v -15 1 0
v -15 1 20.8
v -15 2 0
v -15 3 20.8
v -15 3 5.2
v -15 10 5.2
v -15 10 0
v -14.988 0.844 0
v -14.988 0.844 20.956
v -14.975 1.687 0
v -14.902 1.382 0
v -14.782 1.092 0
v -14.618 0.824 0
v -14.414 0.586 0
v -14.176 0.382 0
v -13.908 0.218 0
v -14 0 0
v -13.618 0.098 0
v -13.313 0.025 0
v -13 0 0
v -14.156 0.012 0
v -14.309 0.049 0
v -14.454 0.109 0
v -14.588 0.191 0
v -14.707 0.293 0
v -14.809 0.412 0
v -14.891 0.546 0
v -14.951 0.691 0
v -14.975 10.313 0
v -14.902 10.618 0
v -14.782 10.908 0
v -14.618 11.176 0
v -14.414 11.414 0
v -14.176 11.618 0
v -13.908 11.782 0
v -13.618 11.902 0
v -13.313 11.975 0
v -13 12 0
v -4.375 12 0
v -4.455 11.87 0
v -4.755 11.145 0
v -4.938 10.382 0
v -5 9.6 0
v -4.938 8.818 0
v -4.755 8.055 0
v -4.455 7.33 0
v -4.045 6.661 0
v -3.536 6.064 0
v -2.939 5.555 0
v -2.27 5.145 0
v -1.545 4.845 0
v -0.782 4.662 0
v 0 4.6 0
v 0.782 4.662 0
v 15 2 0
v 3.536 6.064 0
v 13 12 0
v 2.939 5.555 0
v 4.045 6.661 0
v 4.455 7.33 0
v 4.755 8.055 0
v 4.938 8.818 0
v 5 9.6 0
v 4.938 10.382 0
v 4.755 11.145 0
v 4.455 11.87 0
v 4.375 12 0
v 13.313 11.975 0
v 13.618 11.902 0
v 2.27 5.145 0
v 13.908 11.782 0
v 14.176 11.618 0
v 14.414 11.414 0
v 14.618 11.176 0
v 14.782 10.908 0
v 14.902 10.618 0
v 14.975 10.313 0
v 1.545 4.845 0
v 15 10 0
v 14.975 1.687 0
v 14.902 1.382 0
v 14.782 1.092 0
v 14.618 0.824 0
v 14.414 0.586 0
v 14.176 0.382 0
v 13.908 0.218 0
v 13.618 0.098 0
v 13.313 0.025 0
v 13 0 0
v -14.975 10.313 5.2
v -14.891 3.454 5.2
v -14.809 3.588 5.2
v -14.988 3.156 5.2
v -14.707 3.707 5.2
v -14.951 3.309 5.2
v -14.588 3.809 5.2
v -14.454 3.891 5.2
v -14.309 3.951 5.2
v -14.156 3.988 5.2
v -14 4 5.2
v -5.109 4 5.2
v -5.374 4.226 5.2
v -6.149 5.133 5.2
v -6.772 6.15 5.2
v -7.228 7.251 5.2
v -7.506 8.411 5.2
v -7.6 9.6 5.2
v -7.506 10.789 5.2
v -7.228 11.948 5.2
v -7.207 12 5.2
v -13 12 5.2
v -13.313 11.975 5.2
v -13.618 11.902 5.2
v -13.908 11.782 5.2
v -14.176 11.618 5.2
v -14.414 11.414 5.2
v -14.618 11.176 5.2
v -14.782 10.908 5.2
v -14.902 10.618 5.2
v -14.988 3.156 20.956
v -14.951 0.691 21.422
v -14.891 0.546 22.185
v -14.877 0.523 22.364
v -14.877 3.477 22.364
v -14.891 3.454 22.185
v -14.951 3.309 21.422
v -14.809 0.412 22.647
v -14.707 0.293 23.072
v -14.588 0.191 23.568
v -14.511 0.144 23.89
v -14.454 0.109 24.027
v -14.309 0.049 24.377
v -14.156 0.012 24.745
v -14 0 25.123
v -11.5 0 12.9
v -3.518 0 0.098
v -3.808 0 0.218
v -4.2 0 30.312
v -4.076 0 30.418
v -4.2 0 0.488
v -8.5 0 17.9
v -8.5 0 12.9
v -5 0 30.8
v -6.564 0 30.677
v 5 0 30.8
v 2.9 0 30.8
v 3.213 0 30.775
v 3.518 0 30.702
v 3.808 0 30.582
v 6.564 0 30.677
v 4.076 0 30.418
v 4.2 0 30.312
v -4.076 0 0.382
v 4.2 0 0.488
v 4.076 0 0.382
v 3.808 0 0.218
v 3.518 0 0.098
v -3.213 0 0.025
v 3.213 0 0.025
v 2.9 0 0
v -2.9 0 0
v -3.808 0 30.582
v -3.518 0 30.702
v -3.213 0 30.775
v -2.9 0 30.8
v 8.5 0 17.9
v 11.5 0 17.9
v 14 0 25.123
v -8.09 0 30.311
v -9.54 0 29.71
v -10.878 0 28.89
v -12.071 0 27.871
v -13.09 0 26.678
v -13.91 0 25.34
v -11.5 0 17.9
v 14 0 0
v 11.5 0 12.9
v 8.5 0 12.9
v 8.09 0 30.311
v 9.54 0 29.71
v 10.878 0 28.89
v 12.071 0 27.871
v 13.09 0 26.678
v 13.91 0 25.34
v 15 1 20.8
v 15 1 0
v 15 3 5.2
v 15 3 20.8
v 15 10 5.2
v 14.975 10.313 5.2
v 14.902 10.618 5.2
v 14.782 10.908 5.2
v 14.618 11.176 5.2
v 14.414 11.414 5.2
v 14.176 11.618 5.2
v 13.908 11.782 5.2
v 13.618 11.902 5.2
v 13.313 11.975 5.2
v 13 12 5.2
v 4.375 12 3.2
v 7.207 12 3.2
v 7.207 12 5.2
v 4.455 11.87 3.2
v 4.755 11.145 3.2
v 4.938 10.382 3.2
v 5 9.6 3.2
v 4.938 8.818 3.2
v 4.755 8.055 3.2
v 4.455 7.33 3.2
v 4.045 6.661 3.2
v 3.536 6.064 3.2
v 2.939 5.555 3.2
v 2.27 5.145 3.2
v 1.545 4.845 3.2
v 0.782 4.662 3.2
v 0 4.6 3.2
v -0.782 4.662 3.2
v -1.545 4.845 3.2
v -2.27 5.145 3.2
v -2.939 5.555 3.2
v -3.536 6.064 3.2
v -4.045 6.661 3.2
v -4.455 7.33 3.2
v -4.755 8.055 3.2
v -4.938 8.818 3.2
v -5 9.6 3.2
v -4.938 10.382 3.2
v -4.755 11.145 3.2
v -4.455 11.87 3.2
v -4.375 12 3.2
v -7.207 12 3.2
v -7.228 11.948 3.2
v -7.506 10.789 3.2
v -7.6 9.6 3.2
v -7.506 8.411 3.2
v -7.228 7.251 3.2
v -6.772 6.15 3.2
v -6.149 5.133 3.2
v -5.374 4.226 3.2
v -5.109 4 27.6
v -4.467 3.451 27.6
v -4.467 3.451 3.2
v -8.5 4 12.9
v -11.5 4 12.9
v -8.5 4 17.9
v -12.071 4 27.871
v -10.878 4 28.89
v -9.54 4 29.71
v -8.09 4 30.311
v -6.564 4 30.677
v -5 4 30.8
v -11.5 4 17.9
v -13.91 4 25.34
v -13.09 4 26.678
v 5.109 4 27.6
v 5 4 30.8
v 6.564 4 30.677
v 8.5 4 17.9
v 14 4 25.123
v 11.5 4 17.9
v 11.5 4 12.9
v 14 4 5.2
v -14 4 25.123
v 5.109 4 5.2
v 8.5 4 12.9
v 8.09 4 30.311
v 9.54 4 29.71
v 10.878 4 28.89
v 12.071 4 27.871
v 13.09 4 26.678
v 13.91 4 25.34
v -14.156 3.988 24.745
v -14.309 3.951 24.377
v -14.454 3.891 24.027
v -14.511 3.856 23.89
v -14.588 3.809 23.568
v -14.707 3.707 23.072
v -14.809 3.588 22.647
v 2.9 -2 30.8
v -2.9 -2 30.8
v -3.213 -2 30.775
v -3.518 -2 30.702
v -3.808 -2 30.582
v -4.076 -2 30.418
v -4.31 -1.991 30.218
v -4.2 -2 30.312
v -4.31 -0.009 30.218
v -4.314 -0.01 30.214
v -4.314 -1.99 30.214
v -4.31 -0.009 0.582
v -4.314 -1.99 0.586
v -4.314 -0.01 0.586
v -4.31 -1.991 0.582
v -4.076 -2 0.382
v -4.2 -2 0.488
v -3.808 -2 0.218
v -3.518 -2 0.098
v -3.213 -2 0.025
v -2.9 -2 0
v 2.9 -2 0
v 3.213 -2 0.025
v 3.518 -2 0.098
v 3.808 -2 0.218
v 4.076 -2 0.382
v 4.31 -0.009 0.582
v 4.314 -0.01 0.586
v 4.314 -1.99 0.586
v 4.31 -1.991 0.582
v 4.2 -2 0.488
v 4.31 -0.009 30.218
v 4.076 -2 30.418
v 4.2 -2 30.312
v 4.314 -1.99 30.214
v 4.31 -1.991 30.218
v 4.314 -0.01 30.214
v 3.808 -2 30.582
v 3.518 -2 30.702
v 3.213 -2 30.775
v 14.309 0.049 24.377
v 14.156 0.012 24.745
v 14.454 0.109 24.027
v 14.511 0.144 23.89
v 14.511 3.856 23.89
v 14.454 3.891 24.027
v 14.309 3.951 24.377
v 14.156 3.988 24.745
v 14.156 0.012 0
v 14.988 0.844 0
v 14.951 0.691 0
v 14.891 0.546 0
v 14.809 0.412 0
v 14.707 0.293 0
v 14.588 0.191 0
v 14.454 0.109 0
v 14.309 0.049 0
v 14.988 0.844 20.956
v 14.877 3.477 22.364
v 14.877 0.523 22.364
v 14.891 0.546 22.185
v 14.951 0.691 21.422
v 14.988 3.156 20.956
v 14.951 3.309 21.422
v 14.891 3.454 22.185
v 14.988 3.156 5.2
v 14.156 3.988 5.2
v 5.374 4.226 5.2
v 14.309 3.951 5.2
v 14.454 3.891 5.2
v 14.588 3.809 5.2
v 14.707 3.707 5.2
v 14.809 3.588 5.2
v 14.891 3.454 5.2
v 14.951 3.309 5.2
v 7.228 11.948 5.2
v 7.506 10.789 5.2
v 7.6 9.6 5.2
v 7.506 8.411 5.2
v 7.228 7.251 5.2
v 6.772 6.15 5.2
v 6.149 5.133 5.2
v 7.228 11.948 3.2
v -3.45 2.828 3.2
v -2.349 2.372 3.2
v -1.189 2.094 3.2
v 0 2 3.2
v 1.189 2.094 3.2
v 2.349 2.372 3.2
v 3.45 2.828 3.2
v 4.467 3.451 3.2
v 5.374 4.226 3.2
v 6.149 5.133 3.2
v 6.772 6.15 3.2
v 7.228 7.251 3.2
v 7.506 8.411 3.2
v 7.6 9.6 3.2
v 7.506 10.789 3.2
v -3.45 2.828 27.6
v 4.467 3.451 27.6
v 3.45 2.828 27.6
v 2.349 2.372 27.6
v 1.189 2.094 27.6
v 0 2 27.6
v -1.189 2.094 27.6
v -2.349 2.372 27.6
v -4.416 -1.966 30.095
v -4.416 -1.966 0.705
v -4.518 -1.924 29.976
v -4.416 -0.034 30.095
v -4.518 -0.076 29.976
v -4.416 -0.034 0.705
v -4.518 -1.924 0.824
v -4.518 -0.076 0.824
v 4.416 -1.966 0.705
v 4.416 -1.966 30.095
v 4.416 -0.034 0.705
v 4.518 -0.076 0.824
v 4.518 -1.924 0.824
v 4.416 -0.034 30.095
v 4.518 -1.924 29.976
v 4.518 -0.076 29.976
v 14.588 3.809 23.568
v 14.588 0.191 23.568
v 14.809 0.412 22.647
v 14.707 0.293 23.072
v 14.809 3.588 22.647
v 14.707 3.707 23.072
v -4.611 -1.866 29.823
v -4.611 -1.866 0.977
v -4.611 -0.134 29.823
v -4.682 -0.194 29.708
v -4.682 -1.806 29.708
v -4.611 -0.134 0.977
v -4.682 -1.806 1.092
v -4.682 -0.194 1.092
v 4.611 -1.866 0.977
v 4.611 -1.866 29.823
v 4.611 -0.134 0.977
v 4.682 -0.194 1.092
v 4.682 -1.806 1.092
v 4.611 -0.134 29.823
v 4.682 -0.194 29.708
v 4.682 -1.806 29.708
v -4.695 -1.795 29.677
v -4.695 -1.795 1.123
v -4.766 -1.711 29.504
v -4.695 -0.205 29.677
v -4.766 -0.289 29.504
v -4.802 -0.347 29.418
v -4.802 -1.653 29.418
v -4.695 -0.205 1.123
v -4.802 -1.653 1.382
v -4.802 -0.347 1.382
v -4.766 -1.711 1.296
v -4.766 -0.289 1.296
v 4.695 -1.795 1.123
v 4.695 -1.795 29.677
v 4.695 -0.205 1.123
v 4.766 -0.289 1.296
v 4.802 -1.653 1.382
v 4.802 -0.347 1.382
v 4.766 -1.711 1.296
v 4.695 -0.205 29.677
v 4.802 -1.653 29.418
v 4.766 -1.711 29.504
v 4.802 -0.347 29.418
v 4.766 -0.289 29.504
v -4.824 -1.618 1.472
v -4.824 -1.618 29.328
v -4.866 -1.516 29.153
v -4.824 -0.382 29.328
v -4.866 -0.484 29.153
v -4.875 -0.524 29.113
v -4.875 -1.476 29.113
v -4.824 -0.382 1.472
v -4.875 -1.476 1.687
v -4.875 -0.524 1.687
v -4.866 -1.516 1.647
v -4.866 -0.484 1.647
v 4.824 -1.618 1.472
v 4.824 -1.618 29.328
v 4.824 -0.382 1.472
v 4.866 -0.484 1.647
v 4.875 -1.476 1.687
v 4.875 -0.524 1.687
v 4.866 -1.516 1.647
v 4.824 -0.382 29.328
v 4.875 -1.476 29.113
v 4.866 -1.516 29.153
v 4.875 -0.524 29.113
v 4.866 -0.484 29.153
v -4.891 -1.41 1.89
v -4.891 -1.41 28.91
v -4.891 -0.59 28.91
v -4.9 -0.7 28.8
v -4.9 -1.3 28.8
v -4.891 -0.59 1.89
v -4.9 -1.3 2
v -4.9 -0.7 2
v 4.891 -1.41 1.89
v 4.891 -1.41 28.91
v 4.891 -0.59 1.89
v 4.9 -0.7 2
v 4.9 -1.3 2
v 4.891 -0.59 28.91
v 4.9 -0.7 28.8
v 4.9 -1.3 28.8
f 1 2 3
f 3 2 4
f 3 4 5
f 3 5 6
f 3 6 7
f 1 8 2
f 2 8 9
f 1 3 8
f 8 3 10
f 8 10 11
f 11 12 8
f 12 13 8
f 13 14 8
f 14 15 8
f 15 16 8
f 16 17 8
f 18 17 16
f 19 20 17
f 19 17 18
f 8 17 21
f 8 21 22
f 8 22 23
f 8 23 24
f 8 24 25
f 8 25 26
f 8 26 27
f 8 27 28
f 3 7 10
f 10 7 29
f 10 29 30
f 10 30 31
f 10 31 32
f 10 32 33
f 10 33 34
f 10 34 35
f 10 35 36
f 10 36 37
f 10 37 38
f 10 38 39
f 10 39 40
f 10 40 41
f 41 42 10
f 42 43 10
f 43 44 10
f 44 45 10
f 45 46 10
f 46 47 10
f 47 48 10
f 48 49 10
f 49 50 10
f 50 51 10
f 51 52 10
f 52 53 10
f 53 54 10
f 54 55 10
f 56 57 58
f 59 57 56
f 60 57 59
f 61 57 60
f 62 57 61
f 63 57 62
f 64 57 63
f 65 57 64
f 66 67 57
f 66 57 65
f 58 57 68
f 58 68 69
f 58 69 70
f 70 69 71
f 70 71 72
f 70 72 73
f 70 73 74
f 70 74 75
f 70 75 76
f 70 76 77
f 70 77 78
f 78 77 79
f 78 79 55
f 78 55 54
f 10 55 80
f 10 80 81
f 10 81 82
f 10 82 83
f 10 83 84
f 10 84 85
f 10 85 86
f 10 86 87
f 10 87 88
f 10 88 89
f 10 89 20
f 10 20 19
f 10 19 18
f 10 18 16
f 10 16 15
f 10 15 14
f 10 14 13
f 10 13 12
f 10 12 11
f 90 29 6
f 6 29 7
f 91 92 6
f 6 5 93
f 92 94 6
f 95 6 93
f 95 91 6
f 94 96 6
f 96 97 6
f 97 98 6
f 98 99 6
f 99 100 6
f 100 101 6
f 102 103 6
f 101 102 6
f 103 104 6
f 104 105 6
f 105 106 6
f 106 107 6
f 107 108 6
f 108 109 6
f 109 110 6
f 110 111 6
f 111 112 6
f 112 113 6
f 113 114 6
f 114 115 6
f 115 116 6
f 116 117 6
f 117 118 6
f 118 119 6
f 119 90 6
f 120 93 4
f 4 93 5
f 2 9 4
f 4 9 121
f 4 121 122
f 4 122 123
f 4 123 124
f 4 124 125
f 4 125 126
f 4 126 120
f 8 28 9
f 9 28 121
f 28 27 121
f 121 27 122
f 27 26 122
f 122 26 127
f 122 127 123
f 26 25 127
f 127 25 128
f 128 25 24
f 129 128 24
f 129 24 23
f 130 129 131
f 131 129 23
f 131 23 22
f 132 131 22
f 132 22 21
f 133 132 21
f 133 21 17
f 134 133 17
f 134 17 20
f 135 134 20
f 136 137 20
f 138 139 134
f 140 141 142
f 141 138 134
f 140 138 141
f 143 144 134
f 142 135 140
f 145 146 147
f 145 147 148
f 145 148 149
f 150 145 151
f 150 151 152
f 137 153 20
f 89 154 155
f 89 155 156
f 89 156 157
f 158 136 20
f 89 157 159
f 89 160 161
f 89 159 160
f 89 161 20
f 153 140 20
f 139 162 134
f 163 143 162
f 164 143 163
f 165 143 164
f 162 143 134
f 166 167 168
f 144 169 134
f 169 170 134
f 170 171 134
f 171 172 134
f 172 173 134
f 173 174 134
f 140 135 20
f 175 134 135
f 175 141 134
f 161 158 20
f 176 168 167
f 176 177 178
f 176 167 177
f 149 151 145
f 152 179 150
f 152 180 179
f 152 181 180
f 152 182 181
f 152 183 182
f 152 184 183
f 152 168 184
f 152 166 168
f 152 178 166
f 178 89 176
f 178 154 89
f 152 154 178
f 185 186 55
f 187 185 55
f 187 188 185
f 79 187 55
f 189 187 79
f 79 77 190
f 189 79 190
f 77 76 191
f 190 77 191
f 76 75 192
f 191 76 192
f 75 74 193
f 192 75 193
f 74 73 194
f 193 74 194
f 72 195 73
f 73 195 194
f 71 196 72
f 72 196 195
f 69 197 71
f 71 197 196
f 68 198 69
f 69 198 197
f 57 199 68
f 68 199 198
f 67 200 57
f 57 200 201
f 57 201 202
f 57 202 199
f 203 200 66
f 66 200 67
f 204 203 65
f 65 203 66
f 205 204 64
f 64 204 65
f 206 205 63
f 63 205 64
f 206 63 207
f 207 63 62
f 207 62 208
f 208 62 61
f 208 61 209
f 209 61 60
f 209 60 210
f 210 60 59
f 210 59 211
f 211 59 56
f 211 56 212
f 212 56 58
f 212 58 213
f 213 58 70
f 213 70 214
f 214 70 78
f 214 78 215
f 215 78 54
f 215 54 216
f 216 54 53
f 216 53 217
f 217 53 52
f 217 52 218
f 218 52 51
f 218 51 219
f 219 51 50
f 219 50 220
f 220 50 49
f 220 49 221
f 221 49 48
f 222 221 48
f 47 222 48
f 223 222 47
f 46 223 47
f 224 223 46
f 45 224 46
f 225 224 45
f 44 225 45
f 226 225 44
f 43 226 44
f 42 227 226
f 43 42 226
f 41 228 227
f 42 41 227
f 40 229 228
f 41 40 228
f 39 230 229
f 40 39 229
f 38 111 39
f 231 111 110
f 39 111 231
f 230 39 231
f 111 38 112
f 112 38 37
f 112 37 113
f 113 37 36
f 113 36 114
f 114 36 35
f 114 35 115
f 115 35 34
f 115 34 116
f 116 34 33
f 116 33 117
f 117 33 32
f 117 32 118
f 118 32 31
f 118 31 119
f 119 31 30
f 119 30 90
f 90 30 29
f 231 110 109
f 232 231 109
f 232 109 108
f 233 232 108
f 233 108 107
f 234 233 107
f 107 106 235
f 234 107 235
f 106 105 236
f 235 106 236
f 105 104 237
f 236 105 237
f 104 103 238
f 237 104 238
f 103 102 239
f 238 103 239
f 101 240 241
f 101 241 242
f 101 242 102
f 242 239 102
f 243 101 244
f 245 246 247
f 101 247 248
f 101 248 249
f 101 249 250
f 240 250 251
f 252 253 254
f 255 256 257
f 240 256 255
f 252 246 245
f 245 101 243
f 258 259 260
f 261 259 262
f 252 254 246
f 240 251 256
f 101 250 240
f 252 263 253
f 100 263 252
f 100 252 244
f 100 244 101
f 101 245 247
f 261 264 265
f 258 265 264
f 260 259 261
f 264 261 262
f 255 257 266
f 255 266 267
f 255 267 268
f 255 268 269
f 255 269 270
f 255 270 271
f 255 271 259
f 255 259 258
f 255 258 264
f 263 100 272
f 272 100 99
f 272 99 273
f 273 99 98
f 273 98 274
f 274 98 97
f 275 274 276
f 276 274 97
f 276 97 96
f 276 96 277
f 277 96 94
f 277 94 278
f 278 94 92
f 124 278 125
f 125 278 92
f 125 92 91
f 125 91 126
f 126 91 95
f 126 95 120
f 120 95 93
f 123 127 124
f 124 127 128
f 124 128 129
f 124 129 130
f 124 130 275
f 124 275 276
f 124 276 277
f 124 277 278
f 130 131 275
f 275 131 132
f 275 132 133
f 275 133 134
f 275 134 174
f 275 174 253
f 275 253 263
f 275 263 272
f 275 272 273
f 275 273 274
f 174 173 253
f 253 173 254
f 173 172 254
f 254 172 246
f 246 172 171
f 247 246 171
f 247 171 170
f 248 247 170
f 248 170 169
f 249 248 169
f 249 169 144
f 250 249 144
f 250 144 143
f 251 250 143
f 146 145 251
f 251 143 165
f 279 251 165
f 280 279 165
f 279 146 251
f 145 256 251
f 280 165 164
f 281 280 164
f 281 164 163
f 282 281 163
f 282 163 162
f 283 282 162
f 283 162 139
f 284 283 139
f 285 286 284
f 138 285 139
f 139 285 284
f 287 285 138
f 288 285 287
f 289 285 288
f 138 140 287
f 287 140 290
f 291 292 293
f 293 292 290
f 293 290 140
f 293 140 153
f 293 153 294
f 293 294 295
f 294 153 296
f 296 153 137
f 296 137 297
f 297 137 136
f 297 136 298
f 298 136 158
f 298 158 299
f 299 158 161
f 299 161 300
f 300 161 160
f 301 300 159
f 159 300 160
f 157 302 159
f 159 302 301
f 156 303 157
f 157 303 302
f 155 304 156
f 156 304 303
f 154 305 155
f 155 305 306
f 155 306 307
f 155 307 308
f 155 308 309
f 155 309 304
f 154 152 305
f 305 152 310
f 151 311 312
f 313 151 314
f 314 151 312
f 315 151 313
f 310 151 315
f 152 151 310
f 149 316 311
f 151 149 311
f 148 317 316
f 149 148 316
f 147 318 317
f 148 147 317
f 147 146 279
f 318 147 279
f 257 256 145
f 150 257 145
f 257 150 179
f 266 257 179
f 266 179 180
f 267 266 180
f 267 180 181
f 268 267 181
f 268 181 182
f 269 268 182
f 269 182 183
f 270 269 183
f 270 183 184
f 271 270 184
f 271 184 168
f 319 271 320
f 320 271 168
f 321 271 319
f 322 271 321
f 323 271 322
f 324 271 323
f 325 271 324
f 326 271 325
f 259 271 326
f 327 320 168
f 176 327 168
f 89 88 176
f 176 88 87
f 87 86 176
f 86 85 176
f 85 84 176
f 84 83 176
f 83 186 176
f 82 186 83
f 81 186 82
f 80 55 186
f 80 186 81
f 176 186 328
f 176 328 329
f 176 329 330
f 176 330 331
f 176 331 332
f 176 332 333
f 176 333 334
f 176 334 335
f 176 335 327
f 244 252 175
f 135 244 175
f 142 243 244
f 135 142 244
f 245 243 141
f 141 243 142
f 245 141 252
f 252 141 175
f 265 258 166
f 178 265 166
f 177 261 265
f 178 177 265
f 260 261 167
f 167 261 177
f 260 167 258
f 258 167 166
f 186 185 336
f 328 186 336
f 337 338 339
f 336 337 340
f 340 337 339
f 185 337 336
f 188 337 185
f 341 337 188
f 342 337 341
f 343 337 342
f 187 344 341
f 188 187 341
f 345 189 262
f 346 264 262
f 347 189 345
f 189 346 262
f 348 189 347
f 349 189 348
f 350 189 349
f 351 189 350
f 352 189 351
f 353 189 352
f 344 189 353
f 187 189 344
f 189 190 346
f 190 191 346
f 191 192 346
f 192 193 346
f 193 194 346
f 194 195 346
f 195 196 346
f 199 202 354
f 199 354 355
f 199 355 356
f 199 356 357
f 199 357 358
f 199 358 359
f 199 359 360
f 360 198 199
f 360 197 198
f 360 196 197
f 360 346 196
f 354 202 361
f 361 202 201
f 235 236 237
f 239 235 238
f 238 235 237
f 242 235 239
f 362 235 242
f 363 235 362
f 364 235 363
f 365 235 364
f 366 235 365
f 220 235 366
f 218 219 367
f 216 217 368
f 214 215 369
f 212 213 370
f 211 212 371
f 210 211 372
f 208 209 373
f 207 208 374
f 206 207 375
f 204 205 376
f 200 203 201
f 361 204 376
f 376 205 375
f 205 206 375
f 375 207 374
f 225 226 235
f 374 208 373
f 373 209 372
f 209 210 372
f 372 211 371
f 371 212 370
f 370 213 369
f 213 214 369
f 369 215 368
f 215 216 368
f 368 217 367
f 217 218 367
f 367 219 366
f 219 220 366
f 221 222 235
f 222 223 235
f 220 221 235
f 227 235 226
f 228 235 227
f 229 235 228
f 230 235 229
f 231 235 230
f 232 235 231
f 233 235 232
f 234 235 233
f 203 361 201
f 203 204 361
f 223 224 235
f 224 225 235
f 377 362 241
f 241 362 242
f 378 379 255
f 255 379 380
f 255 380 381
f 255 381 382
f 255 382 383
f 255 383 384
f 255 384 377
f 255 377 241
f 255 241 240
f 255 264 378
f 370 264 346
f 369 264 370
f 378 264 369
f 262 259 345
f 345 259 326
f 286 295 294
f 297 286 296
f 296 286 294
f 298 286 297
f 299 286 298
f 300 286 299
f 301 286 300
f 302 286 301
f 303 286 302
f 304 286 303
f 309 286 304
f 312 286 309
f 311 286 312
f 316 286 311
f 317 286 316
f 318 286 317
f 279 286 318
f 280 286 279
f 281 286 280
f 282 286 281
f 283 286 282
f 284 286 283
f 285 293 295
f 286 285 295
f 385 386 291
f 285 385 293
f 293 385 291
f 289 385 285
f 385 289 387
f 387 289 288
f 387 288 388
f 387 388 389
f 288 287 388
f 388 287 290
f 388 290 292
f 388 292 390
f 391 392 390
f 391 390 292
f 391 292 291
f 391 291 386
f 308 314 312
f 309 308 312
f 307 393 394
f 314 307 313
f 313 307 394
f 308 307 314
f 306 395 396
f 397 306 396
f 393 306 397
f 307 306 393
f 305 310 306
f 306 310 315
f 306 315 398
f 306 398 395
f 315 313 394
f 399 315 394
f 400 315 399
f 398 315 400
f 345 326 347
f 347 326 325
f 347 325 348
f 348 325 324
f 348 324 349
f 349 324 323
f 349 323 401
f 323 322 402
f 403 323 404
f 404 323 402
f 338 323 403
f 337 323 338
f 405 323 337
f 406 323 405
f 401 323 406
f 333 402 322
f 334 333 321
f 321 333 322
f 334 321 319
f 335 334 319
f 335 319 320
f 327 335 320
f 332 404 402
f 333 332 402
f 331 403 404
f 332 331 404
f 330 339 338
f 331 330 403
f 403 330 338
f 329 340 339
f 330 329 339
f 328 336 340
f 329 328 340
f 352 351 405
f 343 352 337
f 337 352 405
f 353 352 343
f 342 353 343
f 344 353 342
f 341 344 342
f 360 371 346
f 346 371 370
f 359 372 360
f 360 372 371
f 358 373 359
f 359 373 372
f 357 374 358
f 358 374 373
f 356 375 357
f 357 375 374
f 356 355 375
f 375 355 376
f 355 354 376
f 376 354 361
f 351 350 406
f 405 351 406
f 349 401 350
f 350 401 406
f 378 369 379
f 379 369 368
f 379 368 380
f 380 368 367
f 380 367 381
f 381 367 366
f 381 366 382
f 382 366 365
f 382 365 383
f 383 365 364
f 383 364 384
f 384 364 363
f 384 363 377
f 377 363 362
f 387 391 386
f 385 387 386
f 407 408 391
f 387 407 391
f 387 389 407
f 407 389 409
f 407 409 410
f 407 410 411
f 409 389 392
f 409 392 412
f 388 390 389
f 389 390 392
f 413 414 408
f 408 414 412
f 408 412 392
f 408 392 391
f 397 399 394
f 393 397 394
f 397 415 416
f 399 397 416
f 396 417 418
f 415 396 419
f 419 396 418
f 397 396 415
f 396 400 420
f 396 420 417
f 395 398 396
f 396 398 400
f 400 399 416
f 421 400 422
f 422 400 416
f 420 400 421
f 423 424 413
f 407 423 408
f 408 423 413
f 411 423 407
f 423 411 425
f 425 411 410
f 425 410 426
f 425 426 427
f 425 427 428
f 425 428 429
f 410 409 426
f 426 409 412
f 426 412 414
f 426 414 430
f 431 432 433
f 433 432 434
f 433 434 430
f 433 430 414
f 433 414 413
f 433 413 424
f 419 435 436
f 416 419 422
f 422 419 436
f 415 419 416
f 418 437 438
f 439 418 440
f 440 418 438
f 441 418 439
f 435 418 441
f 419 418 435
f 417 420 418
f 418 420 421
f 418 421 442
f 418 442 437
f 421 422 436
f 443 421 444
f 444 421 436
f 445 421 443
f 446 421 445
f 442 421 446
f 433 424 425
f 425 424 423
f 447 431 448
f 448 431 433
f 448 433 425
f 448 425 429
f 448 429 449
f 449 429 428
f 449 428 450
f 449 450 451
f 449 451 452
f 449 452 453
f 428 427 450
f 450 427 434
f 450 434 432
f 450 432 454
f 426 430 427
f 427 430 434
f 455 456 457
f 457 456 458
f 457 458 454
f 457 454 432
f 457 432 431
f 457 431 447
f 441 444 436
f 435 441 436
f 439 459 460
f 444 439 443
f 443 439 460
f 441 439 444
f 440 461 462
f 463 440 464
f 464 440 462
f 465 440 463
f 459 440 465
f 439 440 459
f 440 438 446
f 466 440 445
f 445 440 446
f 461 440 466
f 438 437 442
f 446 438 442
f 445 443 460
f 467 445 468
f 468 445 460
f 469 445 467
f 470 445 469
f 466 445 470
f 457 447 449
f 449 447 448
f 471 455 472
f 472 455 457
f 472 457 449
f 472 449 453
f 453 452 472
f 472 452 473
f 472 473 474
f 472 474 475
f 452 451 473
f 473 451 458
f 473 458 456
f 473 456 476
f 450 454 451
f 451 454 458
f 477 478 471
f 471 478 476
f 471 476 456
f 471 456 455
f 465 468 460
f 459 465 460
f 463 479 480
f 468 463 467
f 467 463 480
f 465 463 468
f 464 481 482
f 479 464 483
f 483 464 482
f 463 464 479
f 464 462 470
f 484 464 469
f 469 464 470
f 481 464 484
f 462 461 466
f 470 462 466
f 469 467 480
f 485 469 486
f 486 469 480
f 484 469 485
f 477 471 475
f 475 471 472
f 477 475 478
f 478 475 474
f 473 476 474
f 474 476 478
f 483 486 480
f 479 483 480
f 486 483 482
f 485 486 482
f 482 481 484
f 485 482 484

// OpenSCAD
support=1;
teardrop_angle=45;
brim=0;
support_T=0.25;

$fn=40;

module fillet(r, h, pos, rot)
{
	translate(pos)
	rotate(rot)
	translate([-r,-r,0])
		difference()
		{
			translate([0,0,-h/2])
				cube([r+1,r+1,h]);
			cylinder(r=r, h=h+2, center=true);
		}
}

module __rounded_cube(dim, r, rounded)
{
	difference()
	{
		cube(dim, center=true);
		if(r[0])
			for(y=[-1,1])
			for(z=[-1,1])
			scale([1,y,z])
			fillet(r=r[0], h=dim[0]+2, pos=[0, dim[1]/2, dim[2]/2], rot=[0,-90,0]);
		if(r[1])
			for(x=[-1,1])
			for(z=[-1,1])
			scale([x,1,z])
			fillet(r=r[1], h=dim[1]+2, pos=[dim[0]/2, 0, dim[2]/2], rot=[90,0,0]);
		if(r[2])
			for(x=[-1,1])
			for(y=[-1,1])
			scale([x,y,1])
			fillet(r=r[2], h=dim[2]+2, pos=[dim[0]/2, dim[1]/2, 0], rot=[0,0,0]);
		if(r[0]&&(r[1]==r[2])&&(r[0]==r[1]))
			for(x=[-1,1])
			for(y=[-1,1])
			for(z=[-1,1])
			scale([x,y,z])
			translate(dim/2)
			translate(-r)
			scale(r)
			difference()
			{
				cube([2,2,2]);
				sphere(r=1);
			}
	}
}

module rounded_cube(dim=[], r=[], center=false)
{
	if(center)
	{
		__rounded_cube(dim=dim, r=r, r2=r2);
	}
	else
	{
		translate(dim/2)
		__rounded_cube(dim=dim, r=r);
	}
}

t_ang=teardrop_angle;

module supported_cylinder(r=1,h=1,z_rot=0, center=false)
{
	union()
	{
		cylinder(r=r,h=h,center=center);
		if (support)
		rotate([0,0,z_rot])
		linear_extrude(height=h, center=center)
		if(support_cylinder_style=="trapezoid")
		{
			polygon([[r*sin(t_ang),r*cos(t_ang)], [r, r*(cos(t_ang)-tan(t_ang)*(1-sin(t_ang)))], [r, -r*(cos(t_ang)-tan(t_ang)*(1-sin(t_ang)))],[r*sin(t_ang),-r*cos(t_ang)]]);
		}
		else if(support_cylinder_style=="teardrop")
		{
			polygon([[r*sin(t_ang),r*cos(t_ang)],[r/sin(t_ang),0],[r*sin(t_ang),-r*cos(t_ang)]]);
		}		
	}
}

L=30.8;
W=30;
T=4;

slot_W=9.8;
slot_T=2;
slot_fillet=2;

bearing_D=15.2;
bearing_from_plane=2;
bearing_L=24.4;
rod_hole_D=10;

wall_H=12;
wall_T=(L-bearing_L)/2+2;

module Prusa_i3_Y_Busing()
{
	difference()
	{
		union()
		{
			translate([-W/2,0,0])
				rounded_cube([W,T,L], r=[0,0,1]);
			translate([-W/2,0,0])
				rounded_cube([W,wall_H,wall_T], r=[0,0,2]);
			translate([-slot_W/2,-slot_T,0])
				rounded_cube([slot_W,slot_T,L], r=[0,slot_fillet,0.7]);
			if(brim)
				for(i=[-1,1])
				translate([-15*i,2,support_T/2])
					cube([10,10,support_T], center=true);
		}
		for(i=[-10,10])
			translate([i,T/2,L/2])
				cube([3,T+2,5], center=true);
		for(i=[0,1])
			fillet(r=10, h=T+2, pos=[W/2*(1-2*i),T/2,L], rot=[90,-90*i,0]);
		translate([0,bearing_D/2+bearing_from_plane, L/2])
		{
			cylinder(r=bearing_D/2, h=bearing_L, center=true);
			cylinder(r=rod_hole_D/2, h=L+2, center=true);
		}
	}
}

Prusa_i3_Y_Busing();
